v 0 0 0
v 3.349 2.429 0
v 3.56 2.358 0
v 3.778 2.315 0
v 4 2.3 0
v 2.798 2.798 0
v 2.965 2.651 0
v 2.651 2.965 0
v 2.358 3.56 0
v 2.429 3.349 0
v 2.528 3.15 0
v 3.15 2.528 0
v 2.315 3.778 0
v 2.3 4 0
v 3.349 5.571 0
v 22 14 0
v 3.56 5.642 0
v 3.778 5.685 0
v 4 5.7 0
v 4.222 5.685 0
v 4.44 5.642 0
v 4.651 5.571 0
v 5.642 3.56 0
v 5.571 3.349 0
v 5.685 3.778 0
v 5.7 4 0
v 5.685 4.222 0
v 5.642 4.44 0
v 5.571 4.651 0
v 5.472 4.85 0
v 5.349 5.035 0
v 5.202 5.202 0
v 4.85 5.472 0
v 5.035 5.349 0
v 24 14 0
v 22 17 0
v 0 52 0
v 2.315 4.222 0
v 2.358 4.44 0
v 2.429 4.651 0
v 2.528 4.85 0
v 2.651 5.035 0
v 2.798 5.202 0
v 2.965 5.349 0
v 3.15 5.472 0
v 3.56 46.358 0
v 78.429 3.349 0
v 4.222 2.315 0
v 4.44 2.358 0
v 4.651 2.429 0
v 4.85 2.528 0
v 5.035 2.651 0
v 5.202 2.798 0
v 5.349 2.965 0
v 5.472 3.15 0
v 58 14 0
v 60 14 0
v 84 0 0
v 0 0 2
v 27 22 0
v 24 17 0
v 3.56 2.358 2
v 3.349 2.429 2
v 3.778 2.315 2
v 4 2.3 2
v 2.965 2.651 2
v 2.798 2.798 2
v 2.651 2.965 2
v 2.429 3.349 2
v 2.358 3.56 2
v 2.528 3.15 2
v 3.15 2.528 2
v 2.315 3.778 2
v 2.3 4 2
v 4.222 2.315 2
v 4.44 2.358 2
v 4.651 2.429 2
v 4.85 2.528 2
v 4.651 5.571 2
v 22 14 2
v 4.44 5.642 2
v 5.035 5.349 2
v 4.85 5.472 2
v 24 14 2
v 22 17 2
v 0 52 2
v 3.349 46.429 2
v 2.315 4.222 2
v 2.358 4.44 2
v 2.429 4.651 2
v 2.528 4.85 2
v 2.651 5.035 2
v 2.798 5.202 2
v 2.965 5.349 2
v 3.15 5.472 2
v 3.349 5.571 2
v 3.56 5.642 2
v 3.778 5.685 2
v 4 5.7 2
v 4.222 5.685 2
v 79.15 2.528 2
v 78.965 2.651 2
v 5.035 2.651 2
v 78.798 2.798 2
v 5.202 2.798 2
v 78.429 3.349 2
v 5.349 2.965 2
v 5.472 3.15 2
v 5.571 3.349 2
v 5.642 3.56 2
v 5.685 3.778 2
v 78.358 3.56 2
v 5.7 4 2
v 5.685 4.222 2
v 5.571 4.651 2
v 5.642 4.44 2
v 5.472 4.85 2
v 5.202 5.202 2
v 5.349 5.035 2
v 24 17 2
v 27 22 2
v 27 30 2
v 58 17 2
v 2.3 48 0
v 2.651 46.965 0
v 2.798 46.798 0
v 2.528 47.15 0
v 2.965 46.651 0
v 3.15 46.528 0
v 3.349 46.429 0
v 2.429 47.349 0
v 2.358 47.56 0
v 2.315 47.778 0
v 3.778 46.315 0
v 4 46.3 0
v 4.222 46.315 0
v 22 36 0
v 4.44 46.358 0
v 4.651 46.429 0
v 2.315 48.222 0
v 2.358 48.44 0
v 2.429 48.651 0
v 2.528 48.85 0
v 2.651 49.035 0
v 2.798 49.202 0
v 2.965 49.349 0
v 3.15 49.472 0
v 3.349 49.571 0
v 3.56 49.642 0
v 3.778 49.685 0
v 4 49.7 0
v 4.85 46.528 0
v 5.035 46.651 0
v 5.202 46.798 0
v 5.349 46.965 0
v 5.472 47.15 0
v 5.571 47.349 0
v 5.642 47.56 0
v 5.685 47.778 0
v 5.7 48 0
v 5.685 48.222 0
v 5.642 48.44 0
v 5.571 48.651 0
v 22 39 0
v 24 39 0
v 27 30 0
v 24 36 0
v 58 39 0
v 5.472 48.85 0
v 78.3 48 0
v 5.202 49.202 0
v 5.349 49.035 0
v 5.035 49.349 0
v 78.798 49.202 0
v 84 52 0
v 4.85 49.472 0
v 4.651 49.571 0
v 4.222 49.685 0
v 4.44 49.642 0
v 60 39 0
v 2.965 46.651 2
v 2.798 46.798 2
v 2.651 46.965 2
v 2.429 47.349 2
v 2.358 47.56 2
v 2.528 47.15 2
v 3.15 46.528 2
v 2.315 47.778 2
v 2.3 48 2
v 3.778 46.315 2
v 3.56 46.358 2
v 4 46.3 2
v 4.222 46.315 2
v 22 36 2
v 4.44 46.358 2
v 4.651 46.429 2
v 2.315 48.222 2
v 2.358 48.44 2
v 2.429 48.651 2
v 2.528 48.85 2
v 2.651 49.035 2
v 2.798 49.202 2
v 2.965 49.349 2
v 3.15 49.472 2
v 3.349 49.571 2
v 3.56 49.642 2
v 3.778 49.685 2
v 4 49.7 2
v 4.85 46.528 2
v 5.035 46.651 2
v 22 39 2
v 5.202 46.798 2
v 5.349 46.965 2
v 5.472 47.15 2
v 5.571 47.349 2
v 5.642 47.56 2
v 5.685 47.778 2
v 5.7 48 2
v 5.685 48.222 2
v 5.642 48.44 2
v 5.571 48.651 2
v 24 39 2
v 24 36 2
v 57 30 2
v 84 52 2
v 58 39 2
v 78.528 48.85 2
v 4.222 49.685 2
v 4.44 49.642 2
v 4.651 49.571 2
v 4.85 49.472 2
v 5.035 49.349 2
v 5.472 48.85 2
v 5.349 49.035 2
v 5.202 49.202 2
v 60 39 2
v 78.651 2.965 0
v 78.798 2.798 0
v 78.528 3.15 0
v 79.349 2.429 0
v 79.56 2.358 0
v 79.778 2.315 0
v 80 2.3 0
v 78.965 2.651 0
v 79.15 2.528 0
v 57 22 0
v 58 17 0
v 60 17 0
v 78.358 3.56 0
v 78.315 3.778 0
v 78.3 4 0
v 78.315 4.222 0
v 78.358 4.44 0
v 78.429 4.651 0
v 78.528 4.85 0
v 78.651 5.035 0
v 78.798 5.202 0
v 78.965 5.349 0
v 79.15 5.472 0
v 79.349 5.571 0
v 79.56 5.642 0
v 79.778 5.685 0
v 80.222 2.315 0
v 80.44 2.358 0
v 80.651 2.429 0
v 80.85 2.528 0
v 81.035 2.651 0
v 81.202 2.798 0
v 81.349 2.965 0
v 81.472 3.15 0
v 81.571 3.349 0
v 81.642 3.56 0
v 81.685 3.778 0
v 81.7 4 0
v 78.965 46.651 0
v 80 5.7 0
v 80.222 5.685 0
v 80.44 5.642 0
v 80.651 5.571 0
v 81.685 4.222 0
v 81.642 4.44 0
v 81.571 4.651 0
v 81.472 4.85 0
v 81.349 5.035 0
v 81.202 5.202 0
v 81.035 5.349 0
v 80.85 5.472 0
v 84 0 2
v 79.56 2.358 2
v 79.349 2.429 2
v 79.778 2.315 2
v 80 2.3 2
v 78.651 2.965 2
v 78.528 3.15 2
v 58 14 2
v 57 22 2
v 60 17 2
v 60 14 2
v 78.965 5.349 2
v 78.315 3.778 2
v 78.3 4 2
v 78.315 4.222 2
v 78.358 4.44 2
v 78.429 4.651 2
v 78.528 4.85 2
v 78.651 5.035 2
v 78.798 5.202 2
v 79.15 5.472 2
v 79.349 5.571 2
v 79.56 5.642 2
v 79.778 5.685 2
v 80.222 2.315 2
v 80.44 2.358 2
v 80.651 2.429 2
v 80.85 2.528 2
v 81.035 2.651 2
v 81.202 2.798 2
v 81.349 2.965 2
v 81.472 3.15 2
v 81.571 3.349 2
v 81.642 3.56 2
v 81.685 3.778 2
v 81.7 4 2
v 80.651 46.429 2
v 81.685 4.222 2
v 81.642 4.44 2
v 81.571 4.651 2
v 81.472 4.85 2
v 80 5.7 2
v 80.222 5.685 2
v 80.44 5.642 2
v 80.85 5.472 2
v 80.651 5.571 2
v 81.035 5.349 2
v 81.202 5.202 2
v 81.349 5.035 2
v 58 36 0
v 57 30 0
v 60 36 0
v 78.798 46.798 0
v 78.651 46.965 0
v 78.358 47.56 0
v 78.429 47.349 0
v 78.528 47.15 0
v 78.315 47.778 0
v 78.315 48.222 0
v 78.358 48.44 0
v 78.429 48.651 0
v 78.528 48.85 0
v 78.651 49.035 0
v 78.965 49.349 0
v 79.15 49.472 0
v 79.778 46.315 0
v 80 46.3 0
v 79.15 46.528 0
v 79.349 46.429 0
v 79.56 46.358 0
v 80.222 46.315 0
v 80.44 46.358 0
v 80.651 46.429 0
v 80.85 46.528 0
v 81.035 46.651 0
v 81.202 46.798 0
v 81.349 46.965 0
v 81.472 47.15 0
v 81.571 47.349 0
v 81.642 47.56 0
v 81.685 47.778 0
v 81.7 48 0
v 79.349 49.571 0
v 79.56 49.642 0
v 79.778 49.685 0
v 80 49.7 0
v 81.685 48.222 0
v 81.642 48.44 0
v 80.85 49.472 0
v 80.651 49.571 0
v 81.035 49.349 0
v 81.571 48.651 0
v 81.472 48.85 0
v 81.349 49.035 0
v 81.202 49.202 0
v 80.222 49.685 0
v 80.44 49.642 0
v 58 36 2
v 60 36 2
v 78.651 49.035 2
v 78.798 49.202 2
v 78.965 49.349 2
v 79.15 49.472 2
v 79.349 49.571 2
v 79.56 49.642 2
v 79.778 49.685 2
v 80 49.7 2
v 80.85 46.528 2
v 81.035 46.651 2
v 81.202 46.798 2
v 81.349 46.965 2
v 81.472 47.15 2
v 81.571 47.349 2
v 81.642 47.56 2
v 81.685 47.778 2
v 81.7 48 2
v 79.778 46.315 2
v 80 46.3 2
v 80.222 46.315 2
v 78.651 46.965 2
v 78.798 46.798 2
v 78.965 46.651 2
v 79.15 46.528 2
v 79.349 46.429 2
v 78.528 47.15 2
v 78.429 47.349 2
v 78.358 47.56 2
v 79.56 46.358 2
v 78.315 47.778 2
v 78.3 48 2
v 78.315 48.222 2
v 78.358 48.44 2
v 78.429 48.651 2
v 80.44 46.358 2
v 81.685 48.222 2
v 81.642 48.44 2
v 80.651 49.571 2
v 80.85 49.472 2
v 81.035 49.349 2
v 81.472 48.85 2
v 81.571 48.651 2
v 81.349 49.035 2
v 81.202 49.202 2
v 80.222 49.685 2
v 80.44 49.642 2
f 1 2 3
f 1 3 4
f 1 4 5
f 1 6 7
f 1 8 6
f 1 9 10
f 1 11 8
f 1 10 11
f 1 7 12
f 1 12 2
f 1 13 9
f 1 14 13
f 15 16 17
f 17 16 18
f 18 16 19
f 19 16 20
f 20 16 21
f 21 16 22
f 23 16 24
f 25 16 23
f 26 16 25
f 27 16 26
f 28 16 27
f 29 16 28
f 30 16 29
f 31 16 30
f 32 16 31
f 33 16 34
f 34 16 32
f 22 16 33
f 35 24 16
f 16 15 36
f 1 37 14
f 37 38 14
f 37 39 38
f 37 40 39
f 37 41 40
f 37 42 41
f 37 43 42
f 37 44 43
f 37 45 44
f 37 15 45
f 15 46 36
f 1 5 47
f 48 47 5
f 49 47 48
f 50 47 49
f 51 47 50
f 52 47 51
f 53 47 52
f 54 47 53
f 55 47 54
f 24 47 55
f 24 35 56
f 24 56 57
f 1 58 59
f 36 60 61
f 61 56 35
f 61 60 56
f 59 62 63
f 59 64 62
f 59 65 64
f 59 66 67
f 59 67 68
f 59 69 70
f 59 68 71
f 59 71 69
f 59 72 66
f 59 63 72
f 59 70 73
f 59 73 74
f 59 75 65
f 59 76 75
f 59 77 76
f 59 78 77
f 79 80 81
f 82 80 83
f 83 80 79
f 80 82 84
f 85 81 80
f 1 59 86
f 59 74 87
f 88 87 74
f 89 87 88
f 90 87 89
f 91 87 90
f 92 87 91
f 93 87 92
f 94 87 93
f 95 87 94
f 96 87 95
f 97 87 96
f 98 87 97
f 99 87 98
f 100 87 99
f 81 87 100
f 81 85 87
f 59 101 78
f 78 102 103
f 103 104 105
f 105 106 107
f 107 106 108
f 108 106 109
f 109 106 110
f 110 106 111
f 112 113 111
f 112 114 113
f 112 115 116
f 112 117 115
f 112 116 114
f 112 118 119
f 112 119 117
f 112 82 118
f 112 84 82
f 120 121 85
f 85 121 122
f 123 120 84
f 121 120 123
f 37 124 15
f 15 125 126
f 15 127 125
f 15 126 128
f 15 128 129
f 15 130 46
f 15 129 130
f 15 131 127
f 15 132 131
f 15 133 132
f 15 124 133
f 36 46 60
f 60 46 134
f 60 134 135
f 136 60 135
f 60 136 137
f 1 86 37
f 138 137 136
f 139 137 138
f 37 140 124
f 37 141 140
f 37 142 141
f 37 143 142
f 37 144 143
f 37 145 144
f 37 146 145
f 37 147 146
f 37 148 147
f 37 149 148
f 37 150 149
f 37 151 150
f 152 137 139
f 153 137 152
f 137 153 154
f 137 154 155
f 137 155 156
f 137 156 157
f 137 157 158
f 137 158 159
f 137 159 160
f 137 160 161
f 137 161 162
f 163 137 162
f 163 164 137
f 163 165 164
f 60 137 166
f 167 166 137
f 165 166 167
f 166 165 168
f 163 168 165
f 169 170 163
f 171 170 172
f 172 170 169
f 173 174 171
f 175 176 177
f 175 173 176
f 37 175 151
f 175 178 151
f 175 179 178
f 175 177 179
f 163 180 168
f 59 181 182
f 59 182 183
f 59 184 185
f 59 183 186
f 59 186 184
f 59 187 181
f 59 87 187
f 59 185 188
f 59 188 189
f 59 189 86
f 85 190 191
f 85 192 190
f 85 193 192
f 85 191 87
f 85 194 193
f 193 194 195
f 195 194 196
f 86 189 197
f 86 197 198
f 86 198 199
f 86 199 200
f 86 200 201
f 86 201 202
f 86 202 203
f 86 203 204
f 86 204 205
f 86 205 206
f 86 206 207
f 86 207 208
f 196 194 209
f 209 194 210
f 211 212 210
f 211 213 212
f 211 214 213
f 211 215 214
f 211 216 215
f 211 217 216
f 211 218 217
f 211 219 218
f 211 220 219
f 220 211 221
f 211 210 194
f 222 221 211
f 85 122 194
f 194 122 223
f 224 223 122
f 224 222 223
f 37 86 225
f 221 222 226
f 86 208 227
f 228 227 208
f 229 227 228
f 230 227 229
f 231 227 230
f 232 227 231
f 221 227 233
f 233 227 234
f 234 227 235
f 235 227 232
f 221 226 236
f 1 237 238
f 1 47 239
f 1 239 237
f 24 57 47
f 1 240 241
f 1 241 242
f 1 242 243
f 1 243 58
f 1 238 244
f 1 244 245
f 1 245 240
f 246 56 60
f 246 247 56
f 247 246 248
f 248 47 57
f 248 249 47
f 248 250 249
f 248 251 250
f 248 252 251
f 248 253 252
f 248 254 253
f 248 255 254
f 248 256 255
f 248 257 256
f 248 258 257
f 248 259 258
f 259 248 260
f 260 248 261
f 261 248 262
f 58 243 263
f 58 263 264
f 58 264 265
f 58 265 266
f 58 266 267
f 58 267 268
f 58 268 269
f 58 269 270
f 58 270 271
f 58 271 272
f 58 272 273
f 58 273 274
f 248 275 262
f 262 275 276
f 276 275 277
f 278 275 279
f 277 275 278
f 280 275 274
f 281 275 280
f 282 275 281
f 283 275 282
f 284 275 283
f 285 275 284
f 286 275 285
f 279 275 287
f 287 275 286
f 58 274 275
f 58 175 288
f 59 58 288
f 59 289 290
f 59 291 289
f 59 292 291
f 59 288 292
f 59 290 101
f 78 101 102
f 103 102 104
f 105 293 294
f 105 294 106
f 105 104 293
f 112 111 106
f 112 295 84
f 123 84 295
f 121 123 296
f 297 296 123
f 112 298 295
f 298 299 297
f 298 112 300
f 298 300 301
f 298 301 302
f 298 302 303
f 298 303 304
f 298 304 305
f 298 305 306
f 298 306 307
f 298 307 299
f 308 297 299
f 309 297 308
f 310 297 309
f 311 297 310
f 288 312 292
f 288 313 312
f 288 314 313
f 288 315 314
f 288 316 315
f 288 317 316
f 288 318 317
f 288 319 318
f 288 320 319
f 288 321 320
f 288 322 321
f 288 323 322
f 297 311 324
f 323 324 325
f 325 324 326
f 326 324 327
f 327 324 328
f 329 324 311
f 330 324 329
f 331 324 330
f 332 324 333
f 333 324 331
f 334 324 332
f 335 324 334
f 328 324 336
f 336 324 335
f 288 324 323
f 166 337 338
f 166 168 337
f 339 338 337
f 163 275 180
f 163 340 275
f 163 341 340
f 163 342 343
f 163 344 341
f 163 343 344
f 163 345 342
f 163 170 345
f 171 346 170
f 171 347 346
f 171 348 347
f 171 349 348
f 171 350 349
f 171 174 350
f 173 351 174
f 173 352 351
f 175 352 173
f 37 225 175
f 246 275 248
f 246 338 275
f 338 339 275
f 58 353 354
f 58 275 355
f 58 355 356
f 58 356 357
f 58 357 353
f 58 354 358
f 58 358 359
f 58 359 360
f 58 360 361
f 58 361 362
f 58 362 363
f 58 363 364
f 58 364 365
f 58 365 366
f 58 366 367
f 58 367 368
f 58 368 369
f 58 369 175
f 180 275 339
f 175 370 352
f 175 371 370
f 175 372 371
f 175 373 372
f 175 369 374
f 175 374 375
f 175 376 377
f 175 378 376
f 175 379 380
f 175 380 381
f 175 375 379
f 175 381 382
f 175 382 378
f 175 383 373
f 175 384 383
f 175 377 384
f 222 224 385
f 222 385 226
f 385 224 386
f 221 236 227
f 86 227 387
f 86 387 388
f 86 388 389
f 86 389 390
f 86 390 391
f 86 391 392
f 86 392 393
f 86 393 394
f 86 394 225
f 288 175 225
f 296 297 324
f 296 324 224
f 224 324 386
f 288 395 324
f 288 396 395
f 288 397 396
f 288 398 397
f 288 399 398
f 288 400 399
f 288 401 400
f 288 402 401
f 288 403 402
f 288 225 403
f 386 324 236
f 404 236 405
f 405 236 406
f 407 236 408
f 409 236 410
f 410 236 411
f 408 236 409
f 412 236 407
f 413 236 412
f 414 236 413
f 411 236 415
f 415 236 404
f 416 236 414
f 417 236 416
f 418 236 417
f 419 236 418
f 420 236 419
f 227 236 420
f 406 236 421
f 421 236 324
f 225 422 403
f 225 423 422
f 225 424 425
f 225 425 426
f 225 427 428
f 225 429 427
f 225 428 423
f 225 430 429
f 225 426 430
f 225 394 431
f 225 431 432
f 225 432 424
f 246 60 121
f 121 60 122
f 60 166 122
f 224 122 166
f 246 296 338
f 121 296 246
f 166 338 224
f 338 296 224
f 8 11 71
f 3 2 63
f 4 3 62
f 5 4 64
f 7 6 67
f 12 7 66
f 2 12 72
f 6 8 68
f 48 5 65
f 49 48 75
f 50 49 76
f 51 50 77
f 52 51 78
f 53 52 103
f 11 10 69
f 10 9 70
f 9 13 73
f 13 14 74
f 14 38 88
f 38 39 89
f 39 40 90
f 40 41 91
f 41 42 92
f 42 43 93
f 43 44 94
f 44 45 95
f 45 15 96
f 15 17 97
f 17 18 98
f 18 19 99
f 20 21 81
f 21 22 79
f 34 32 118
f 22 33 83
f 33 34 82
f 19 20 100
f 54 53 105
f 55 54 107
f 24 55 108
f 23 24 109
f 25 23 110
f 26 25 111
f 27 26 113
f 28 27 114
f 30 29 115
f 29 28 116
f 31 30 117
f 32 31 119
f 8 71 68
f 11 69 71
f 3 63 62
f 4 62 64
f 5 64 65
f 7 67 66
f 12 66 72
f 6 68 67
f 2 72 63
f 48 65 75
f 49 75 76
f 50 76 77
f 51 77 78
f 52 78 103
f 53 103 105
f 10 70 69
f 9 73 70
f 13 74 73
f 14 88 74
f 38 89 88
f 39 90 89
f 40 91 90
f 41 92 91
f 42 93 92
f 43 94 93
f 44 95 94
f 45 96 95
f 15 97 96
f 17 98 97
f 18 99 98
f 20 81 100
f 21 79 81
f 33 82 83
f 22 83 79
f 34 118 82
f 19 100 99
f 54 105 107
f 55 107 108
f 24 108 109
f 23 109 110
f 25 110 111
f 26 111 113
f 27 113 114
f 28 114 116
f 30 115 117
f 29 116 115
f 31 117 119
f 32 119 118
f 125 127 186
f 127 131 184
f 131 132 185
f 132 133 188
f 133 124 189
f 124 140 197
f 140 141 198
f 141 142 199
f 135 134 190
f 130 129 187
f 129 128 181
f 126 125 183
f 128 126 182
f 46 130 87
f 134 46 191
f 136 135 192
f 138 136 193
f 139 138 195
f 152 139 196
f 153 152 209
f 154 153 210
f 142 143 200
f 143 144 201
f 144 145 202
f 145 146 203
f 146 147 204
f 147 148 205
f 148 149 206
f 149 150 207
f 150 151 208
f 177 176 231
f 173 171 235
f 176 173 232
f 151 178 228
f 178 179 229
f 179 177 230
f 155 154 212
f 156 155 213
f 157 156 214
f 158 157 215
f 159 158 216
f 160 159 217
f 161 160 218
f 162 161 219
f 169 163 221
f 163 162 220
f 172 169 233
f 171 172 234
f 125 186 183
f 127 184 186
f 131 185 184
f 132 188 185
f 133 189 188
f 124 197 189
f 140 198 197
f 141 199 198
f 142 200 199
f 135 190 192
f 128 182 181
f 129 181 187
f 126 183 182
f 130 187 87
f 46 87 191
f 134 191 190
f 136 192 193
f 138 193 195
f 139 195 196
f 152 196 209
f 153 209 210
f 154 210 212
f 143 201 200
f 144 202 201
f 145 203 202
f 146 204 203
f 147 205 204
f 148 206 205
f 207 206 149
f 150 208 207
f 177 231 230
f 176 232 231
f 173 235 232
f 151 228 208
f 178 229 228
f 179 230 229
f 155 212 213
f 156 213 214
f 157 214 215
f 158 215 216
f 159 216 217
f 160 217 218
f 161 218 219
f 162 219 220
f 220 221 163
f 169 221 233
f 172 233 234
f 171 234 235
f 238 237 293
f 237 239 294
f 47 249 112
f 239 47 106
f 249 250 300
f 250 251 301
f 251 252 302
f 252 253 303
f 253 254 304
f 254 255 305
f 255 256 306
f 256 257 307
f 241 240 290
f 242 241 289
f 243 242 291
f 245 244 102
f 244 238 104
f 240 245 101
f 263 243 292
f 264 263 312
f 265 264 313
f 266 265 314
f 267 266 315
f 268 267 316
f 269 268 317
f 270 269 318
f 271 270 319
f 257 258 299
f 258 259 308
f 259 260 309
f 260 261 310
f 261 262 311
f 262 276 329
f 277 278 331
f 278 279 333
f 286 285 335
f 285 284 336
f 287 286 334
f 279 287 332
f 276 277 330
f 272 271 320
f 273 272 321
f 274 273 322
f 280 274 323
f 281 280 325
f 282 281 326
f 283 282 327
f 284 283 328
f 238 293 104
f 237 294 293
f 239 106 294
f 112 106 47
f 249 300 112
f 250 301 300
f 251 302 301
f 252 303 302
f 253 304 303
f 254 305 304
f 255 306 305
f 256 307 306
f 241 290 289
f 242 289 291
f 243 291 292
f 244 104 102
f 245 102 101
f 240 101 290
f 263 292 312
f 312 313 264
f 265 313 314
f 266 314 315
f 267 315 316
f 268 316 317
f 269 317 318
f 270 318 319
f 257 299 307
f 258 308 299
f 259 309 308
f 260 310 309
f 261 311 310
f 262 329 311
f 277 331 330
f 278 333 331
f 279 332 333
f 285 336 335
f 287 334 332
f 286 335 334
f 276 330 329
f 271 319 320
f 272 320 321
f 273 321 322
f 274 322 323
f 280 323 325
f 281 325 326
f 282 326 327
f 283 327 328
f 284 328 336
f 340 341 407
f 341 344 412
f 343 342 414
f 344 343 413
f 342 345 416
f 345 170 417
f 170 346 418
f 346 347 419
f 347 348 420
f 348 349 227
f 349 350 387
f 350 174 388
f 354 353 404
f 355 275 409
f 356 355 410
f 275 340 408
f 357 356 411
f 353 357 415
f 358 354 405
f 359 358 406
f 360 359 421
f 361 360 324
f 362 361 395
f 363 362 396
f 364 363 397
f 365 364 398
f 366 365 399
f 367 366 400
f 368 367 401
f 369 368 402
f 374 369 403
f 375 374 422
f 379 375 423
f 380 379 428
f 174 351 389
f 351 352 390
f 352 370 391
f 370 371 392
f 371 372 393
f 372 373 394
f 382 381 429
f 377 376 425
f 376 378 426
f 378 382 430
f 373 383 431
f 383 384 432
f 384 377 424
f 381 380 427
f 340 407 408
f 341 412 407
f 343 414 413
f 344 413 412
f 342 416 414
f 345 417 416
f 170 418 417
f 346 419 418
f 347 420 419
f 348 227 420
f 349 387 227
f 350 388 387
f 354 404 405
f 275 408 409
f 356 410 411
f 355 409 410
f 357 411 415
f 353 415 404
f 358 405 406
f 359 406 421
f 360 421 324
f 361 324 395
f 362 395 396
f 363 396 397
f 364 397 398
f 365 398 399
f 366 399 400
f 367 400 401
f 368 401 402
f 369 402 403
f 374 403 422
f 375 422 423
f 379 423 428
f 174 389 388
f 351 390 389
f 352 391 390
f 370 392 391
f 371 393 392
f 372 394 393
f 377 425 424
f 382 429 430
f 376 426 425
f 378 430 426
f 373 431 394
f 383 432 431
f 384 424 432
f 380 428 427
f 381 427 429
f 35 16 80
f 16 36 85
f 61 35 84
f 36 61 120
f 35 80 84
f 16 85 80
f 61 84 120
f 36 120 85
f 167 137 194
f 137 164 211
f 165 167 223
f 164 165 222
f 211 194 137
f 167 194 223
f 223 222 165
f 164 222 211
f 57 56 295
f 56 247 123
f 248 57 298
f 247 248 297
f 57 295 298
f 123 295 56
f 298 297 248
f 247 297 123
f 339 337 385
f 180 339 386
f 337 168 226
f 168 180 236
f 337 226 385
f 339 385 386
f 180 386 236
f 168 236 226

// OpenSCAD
// Generated from parameters.json by build.py. Edit parameters.json, then rebuild.
// CSG and STL share the same source. See docs/enclosure.md. Units mm.
difference() {
cube([84,52,2]);
translate([27, 22, -0.02]) { cube([30,8,2.04]); }
translate([4, 4, -0.02]) { cylinder(d=3.4,h=2.04,$fn=48); }
translate([4, 48, -0.02]) { cylinder(d=3.4,h=2.04,$fn=48); }
translate([80, 4, -0.02]) { cylinder(d=3.4,h=2.04,$fn=48); }
translate([80, 48, -0.02]) { cylinder(d=3.4,h=2.04,$fn=48); }
translate([22, 14, -0.02]) { cube([2,3,2.04]); }
translate([22, 36, -0.02]) { cube([2,3,2.04]); }
translate([58, 14, -0.02]) { cube([2,3,2.04]); }
translate([58, 36, -0.02]) { cube([2,3,2.04]); }
}
